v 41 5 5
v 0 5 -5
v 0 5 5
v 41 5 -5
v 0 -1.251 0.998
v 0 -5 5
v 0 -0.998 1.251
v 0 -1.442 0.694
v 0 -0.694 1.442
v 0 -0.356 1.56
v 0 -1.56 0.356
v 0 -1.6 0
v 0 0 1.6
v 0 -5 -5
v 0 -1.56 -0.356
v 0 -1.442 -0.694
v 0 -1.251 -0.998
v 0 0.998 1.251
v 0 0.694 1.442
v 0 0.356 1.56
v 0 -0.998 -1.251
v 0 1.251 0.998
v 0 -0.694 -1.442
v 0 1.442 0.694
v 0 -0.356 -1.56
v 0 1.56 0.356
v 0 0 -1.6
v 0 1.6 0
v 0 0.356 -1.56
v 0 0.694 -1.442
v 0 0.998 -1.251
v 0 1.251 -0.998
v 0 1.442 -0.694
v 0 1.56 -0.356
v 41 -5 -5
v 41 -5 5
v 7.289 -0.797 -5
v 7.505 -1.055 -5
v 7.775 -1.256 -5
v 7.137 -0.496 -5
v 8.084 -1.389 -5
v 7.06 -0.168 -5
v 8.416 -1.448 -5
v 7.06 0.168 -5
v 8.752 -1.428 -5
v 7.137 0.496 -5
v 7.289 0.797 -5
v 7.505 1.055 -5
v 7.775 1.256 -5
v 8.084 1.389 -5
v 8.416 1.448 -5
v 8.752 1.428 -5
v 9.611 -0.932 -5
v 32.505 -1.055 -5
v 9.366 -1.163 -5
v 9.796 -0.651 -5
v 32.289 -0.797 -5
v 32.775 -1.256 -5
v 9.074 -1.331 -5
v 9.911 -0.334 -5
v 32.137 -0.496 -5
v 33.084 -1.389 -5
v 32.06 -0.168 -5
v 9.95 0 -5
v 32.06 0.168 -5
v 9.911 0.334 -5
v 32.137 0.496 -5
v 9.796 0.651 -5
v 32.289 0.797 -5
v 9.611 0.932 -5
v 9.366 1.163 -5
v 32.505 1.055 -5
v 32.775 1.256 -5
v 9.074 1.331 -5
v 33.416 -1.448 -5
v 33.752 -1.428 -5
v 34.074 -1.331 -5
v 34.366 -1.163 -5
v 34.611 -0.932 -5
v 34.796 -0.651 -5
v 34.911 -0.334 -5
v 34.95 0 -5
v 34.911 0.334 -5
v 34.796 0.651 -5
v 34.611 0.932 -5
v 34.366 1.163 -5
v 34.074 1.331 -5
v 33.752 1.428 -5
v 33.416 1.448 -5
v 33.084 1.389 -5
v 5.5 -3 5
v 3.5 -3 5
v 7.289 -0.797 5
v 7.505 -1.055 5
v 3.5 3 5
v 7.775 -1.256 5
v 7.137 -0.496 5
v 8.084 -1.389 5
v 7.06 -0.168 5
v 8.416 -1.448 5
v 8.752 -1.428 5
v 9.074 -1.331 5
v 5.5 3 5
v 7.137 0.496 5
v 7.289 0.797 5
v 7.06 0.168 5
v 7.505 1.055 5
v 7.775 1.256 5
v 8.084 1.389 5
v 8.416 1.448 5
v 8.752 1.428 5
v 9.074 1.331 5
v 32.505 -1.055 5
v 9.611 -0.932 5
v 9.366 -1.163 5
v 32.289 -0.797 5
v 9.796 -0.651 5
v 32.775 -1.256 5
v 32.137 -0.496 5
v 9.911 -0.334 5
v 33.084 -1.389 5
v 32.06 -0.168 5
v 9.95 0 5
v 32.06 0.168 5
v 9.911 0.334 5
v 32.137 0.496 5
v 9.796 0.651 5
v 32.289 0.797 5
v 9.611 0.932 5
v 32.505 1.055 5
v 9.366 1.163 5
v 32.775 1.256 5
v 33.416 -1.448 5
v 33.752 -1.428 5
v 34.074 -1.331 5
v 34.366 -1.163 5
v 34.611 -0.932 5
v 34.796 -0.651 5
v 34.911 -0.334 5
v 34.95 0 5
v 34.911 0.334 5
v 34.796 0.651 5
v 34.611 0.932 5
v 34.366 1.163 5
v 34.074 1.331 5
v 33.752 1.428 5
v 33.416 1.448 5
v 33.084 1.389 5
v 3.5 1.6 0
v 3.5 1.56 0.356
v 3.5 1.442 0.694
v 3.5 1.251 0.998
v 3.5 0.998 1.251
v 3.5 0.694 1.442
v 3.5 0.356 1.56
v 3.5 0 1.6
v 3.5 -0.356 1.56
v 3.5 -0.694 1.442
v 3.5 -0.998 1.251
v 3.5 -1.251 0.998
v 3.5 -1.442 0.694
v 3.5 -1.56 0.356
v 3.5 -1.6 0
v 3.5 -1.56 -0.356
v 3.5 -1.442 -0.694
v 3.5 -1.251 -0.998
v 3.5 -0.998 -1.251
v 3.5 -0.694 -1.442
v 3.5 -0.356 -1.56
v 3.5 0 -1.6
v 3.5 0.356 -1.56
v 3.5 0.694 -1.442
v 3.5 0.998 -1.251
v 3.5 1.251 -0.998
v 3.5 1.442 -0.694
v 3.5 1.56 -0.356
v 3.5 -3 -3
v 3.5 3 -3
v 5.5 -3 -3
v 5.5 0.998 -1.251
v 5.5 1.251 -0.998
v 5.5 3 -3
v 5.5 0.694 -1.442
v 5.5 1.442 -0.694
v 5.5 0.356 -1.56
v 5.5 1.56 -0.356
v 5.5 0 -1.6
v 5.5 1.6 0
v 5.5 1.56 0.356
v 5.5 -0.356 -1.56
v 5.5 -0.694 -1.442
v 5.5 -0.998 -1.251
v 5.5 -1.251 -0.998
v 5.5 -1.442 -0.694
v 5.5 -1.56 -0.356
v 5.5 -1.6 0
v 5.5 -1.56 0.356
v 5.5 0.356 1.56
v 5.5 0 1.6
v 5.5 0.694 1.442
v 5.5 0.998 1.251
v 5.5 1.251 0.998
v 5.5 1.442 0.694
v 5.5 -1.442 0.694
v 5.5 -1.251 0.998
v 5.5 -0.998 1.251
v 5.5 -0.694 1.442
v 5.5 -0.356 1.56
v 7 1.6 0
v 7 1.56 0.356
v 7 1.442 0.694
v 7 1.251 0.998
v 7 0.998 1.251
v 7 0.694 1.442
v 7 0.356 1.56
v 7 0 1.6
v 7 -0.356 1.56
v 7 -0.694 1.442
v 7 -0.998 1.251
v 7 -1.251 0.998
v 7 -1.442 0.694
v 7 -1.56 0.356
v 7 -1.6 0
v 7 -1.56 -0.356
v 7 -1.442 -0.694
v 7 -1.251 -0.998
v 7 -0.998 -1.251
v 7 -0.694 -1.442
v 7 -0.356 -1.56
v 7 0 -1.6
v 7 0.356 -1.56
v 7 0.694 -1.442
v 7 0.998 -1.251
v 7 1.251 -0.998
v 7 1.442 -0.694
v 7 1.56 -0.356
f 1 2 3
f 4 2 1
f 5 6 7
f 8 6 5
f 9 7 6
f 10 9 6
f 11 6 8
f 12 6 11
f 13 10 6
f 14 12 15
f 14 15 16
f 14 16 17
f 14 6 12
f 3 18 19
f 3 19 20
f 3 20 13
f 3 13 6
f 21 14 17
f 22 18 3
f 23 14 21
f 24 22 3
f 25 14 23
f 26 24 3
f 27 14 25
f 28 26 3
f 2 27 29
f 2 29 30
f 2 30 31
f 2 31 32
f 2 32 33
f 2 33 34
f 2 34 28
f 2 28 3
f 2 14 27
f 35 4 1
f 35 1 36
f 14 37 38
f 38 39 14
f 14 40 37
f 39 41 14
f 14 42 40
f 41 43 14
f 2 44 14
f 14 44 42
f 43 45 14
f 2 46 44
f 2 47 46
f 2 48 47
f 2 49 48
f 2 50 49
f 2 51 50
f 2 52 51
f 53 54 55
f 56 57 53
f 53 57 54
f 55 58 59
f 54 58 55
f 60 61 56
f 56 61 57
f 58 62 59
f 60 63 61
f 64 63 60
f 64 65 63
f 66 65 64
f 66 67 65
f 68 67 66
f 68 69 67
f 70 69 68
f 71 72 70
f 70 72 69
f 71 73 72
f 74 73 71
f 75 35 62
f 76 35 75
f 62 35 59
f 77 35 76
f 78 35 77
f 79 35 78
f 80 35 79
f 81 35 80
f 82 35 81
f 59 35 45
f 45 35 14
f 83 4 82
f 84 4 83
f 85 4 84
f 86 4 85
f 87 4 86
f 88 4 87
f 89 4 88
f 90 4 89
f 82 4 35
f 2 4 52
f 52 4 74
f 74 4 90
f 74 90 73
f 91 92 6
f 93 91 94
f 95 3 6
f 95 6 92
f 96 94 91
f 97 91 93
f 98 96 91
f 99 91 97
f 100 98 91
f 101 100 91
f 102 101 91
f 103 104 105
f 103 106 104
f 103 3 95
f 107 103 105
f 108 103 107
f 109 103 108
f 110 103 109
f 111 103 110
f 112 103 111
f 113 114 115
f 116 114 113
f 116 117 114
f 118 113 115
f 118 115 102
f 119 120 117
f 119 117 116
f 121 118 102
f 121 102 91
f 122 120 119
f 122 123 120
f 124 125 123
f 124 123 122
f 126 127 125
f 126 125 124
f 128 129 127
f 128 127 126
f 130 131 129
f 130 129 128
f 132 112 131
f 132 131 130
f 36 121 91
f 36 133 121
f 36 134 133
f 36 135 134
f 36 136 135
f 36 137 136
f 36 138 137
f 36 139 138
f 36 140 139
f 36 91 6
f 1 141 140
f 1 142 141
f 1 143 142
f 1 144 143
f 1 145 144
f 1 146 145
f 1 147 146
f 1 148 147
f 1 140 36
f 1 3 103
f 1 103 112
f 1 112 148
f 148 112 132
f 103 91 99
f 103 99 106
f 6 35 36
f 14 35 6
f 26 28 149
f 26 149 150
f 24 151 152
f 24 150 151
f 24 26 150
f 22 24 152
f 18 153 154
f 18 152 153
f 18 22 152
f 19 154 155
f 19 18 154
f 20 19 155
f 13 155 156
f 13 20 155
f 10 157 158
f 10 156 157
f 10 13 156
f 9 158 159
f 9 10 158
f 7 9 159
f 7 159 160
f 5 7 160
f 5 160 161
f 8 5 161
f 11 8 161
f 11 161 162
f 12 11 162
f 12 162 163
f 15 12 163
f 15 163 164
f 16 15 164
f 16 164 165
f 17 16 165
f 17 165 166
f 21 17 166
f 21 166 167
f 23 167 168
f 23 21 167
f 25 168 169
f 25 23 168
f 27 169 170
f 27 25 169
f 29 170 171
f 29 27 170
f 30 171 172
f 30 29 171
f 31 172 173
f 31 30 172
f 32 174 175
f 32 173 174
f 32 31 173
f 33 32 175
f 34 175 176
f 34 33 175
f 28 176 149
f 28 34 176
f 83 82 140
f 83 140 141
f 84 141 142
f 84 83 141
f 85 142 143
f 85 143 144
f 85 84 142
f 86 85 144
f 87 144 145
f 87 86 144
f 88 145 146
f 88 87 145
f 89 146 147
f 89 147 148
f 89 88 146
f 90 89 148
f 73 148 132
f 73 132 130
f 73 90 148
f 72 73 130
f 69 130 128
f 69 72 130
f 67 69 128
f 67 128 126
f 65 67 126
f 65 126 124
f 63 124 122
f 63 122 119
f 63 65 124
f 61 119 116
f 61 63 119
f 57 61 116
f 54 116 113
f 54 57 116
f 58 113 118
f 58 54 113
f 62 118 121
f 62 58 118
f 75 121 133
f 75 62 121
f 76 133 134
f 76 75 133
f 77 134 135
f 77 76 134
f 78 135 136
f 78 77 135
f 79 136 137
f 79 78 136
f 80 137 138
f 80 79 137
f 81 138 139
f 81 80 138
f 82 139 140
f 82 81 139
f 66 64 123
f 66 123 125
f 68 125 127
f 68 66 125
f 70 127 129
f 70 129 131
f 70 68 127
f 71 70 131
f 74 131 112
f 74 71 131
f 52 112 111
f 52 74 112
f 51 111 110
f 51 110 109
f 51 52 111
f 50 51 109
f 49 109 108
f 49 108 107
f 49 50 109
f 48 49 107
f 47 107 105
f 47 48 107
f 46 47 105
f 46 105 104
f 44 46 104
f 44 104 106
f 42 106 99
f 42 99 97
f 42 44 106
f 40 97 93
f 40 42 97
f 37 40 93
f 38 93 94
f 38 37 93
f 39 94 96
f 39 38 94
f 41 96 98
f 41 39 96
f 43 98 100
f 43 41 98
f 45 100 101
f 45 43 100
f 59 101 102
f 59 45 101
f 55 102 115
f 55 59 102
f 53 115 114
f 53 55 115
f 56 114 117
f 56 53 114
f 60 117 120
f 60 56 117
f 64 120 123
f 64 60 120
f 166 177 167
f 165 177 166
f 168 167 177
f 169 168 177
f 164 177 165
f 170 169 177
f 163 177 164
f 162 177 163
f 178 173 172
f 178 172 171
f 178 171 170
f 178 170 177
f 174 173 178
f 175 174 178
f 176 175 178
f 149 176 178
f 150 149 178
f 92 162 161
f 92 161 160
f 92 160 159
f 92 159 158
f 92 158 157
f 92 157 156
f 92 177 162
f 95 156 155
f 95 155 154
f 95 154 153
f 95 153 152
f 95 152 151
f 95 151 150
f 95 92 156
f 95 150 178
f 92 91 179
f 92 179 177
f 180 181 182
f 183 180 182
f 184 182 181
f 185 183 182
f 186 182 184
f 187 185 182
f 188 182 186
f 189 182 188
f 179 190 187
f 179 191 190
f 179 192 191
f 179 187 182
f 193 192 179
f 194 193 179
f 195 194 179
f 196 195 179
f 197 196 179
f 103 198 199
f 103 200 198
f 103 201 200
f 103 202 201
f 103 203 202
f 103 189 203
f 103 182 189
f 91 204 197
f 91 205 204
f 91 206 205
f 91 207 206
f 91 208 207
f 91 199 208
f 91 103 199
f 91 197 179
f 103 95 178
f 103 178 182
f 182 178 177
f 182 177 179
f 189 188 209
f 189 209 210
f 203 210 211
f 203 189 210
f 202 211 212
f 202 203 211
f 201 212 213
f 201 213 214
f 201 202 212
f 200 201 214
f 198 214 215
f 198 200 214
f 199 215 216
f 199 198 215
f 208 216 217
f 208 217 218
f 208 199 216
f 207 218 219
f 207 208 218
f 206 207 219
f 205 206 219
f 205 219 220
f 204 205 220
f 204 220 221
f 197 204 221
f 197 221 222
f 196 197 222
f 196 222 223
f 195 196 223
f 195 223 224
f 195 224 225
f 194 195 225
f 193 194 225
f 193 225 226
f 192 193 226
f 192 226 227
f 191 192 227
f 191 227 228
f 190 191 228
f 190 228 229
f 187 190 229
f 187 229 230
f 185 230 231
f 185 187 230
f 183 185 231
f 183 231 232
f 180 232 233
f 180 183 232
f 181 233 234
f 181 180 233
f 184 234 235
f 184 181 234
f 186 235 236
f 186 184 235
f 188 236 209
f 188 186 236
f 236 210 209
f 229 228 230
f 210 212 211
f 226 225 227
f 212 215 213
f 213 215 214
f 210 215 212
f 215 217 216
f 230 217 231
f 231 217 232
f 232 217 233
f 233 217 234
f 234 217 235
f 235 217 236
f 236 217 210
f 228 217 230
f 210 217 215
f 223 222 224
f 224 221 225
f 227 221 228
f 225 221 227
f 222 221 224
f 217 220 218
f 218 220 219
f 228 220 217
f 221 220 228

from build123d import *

# Parameters (mm, degrees)
SKETCH013_W     = 41
SKETCH013_H     = 10
SKETCH013_R     = 1.45
PAD009_DEPTH    = 5
SKETCH014_R     = 1.6
POCKET002_DEPTH = 7
SKETCH015_W     = 2
SKETCH015_H     = 6
POCKET003_DEPTH = 8


with BuildPart() as part:
    # Sketch013 → Pad009 (new body, symmetric)
    with BuildSketch(Plane.XY):
        with Locations((20.5, 0)):
            Rectangle(SKETCH013_W, SKETCH013_H)
        with Locations((33.5, 0)):
            Circle(SKETCH013_R, mode=Mode.SUBTRACT)
        with Locations((8.5, 0)):
            Circle(SKETCH013_R, mode=Mode.SUBTRACT)
    extrude(amount=PAD009_DEPTH, both=True)

    # Sketch014 → Pocket002 (cut)
    with BuildSketch(Plane.YZ):
        Circle(SKETCH014_R)
    extrude(amount=POCKET002_DEPTH, mode=Mode.SUBTRACT)

    # Sketch015 → Pocket003 (cut)
    with BuildSketch(Plane.XY.offset(5)):
        with Locations((4.5, 0)):
            Rectangle(SKETCH015_W, SKETCH015_H)
    extrude(amount=-POCKET003_DEPTH, mode=Mode.SUBTRACT)


solid = part.part
